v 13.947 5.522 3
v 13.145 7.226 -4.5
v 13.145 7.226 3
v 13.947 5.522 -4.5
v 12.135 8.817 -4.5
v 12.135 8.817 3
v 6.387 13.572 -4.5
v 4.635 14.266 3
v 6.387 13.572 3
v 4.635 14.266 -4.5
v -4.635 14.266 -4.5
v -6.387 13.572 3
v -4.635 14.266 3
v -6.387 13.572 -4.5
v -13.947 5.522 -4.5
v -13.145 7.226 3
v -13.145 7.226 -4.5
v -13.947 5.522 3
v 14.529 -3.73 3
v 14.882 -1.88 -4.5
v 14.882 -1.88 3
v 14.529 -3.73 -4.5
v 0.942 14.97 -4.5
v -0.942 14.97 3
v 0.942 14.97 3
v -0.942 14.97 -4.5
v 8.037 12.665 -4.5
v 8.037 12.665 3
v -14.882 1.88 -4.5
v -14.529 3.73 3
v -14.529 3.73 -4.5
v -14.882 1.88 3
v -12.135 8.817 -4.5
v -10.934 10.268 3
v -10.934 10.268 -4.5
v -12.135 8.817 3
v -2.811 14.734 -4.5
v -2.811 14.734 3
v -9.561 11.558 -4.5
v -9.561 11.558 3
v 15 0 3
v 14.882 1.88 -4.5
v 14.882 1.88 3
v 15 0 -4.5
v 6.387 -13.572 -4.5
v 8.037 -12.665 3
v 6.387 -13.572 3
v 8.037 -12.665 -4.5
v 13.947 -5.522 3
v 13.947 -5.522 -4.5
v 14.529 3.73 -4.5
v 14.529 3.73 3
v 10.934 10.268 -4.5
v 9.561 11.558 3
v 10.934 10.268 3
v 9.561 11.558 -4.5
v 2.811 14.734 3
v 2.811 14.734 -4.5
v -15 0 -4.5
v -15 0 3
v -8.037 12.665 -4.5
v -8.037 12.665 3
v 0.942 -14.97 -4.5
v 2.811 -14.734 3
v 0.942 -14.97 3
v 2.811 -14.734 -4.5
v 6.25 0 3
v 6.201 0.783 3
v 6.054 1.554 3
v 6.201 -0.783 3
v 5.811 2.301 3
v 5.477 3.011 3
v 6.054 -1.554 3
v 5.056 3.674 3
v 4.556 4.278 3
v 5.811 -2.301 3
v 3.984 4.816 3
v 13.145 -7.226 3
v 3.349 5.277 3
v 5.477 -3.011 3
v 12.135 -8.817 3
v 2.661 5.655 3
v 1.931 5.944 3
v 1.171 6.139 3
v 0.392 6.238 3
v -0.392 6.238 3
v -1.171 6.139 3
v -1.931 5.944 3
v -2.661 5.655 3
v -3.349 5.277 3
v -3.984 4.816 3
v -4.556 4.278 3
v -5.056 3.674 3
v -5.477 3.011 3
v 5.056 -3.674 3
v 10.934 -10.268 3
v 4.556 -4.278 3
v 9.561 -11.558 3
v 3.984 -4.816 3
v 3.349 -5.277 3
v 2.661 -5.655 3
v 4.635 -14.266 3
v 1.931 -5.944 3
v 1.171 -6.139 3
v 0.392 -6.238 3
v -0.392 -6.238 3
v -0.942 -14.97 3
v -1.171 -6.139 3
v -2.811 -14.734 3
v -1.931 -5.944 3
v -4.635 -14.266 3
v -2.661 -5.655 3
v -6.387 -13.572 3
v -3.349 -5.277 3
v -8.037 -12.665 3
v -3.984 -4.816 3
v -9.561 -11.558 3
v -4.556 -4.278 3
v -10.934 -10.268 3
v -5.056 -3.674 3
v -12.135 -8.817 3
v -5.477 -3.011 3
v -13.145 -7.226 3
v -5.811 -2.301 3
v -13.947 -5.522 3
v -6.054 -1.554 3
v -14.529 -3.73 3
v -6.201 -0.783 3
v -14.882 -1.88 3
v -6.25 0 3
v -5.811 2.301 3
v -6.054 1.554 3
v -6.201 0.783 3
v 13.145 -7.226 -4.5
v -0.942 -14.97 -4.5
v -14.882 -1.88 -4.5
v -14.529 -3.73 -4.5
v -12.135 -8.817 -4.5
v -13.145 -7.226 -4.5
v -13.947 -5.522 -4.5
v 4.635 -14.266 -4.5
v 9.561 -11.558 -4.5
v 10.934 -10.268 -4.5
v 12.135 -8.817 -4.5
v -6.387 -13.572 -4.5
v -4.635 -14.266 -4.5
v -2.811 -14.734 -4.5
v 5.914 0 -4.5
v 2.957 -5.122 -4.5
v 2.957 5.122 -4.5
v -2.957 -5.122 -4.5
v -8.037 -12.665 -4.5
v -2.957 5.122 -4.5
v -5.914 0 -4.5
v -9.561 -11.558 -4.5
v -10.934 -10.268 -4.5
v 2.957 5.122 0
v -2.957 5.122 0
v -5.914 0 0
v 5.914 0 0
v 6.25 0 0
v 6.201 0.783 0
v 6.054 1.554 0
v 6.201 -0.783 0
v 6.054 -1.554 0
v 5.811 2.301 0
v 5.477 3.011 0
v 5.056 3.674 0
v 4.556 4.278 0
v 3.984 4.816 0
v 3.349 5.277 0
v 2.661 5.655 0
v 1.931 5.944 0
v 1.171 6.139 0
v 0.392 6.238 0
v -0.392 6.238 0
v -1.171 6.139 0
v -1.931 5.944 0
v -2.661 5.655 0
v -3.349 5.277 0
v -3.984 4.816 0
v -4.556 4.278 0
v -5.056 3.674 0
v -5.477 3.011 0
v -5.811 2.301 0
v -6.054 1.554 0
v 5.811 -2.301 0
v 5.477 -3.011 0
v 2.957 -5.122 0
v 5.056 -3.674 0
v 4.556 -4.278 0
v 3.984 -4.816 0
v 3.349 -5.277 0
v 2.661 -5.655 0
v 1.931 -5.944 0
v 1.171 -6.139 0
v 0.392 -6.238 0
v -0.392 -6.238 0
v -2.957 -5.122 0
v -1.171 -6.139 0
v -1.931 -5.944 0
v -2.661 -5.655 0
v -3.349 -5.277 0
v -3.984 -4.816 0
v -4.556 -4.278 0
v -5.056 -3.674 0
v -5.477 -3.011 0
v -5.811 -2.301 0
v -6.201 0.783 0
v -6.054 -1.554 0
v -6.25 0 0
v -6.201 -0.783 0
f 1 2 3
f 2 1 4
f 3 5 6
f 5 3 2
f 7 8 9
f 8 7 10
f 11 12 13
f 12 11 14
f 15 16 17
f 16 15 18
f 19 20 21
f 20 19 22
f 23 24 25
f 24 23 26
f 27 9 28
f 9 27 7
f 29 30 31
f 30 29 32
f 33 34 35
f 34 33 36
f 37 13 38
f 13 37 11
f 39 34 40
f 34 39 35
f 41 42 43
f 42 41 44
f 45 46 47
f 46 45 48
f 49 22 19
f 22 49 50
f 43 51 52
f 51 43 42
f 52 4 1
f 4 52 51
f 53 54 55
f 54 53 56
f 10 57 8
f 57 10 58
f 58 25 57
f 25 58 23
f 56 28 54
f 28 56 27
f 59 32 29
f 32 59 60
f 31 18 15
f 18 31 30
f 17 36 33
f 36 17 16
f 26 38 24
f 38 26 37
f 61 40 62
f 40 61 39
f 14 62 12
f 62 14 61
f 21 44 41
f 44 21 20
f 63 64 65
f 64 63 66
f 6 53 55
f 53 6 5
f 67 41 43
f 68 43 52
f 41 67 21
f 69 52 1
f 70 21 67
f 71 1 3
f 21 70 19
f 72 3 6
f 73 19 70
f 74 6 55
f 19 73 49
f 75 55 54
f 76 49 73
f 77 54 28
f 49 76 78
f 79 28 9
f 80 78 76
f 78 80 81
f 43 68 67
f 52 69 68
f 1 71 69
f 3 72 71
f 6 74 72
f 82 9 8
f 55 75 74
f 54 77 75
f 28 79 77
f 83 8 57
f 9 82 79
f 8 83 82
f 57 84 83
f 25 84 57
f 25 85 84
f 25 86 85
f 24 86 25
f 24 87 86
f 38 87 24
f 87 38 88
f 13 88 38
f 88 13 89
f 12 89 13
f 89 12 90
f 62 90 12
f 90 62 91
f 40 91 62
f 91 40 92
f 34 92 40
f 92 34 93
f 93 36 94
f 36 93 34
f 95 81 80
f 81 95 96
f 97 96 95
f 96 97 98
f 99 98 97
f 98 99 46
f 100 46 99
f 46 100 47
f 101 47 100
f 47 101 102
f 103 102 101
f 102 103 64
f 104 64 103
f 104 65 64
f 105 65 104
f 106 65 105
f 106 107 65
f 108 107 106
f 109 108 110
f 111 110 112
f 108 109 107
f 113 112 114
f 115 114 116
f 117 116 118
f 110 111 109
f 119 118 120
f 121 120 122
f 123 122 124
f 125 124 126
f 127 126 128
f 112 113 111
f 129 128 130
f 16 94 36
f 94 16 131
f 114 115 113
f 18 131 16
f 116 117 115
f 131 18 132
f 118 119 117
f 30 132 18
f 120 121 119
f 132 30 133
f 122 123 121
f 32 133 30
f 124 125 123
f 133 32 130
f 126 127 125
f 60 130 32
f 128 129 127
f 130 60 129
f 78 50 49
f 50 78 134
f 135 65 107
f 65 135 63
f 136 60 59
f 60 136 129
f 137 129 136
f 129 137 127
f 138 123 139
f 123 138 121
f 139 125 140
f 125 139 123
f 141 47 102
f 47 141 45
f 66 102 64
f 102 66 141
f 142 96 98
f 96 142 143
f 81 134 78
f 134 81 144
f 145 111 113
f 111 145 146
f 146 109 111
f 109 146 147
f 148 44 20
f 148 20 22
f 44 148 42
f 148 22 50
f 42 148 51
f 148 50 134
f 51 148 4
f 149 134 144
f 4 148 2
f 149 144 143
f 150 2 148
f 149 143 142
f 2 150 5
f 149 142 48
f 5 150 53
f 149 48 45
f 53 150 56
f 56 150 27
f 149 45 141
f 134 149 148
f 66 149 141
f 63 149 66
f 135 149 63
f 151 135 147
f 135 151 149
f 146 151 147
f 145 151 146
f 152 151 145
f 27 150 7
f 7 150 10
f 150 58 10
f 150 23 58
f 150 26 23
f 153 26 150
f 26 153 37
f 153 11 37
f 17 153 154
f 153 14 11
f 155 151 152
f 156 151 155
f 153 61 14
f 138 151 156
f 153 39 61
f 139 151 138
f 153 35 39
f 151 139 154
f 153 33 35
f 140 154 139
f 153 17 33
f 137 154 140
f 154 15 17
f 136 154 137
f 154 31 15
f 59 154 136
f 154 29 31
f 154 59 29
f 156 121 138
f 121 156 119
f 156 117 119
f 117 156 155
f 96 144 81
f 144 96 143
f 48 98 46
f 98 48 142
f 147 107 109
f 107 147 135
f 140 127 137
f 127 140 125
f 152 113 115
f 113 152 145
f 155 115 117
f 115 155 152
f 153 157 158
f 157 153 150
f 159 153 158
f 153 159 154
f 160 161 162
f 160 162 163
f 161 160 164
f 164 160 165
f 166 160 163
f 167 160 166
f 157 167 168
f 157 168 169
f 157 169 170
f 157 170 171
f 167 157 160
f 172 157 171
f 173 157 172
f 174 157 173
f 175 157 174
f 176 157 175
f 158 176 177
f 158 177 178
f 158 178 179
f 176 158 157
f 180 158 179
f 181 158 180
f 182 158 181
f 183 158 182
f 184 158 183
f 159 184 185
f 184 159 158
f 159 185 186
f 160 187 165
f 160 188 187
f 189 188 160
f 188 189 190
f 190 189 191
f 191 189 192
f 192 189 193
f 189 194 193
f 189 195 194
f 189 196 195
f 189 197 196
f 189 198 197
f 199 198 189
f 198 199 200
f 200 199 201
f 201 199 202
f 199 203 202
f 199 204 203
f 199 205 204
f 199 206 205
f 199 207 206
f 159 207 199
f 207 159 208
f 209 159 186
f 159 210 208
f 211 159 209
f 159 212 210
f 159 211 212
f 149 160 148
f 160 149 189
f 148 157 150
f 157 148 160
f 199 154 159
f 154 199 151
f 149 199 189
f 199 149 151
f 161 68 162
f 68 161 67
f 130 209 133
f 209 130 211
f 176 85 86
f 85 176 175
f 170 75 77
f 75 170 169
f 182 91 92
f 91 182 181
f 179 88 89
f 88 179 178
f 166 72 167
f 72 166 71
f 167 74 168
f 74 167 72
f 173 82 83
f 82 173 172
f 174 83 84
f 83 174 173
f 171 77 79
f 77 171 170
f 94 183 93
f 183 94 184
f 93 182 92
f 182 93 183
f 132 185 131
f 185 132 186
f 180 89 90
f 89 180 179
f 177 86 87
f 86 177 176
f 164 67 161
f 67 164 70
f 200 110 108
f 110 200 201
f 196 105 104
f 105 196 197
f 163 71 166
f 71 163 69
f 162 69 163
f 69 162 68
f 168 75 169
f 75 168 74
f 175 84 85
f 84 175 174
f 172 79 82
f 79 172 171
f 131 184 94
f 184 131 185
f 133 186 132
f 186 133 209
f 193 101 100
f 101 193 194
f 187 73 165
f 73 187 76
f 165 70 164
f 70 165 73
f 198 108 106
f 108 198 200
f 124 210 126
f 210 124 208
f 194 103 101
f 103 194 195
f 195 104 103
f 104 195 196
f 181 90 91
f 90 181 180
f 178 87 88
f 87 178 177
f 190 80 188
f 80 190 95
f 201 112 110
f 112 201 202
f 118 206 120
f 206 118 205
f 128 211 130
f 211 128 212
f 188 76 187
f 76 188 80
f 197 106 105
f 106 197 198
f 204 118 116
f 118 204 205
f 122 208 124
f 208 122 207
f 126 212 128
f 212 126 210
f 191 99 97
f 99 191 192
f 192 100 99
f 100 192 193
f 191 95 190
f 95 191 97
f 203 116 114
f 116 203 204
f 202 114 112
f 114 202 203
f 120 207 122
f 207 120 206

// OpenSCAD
$fn = 50;


difference() {
	union() {
		translate(v = [0, 0, -4.5000000000]) {
			cylinder(h = 7.5000000000, r = 15.0000000000);
		}
		#translate(v = [0, 0, -6.0000000000]) {
			cylinder(h = 6, r = 2.8750000000);
		}
	}
	union() {
		translate(v = [0, 0, 0]) {
			rotate(a = [0, 0, 0]) {
				difference() {
					union() {
						translate(v = [0, 0, -5]) {
							linear_extrude(height = 5) {
								polygon(points = [[5.9142500000, 0.0000000000], [2.9571250000, 5.1218907443], [-2.9571250000, 5.1218907443], [-5.9142500000, 0.0000000000], [-2.9571250000, -5.1218907443], [2.9571250000, -5.1218907443]]);
							}
						}
					}
					union();
				}
			}
		}
		#cylinder(h = 3, r = 6.2500000000);
		#translate(v = [0, 0, -100.0000000000]) {
			cylinder(h = 200, r = 3.2500000000);
		}
	}
}
